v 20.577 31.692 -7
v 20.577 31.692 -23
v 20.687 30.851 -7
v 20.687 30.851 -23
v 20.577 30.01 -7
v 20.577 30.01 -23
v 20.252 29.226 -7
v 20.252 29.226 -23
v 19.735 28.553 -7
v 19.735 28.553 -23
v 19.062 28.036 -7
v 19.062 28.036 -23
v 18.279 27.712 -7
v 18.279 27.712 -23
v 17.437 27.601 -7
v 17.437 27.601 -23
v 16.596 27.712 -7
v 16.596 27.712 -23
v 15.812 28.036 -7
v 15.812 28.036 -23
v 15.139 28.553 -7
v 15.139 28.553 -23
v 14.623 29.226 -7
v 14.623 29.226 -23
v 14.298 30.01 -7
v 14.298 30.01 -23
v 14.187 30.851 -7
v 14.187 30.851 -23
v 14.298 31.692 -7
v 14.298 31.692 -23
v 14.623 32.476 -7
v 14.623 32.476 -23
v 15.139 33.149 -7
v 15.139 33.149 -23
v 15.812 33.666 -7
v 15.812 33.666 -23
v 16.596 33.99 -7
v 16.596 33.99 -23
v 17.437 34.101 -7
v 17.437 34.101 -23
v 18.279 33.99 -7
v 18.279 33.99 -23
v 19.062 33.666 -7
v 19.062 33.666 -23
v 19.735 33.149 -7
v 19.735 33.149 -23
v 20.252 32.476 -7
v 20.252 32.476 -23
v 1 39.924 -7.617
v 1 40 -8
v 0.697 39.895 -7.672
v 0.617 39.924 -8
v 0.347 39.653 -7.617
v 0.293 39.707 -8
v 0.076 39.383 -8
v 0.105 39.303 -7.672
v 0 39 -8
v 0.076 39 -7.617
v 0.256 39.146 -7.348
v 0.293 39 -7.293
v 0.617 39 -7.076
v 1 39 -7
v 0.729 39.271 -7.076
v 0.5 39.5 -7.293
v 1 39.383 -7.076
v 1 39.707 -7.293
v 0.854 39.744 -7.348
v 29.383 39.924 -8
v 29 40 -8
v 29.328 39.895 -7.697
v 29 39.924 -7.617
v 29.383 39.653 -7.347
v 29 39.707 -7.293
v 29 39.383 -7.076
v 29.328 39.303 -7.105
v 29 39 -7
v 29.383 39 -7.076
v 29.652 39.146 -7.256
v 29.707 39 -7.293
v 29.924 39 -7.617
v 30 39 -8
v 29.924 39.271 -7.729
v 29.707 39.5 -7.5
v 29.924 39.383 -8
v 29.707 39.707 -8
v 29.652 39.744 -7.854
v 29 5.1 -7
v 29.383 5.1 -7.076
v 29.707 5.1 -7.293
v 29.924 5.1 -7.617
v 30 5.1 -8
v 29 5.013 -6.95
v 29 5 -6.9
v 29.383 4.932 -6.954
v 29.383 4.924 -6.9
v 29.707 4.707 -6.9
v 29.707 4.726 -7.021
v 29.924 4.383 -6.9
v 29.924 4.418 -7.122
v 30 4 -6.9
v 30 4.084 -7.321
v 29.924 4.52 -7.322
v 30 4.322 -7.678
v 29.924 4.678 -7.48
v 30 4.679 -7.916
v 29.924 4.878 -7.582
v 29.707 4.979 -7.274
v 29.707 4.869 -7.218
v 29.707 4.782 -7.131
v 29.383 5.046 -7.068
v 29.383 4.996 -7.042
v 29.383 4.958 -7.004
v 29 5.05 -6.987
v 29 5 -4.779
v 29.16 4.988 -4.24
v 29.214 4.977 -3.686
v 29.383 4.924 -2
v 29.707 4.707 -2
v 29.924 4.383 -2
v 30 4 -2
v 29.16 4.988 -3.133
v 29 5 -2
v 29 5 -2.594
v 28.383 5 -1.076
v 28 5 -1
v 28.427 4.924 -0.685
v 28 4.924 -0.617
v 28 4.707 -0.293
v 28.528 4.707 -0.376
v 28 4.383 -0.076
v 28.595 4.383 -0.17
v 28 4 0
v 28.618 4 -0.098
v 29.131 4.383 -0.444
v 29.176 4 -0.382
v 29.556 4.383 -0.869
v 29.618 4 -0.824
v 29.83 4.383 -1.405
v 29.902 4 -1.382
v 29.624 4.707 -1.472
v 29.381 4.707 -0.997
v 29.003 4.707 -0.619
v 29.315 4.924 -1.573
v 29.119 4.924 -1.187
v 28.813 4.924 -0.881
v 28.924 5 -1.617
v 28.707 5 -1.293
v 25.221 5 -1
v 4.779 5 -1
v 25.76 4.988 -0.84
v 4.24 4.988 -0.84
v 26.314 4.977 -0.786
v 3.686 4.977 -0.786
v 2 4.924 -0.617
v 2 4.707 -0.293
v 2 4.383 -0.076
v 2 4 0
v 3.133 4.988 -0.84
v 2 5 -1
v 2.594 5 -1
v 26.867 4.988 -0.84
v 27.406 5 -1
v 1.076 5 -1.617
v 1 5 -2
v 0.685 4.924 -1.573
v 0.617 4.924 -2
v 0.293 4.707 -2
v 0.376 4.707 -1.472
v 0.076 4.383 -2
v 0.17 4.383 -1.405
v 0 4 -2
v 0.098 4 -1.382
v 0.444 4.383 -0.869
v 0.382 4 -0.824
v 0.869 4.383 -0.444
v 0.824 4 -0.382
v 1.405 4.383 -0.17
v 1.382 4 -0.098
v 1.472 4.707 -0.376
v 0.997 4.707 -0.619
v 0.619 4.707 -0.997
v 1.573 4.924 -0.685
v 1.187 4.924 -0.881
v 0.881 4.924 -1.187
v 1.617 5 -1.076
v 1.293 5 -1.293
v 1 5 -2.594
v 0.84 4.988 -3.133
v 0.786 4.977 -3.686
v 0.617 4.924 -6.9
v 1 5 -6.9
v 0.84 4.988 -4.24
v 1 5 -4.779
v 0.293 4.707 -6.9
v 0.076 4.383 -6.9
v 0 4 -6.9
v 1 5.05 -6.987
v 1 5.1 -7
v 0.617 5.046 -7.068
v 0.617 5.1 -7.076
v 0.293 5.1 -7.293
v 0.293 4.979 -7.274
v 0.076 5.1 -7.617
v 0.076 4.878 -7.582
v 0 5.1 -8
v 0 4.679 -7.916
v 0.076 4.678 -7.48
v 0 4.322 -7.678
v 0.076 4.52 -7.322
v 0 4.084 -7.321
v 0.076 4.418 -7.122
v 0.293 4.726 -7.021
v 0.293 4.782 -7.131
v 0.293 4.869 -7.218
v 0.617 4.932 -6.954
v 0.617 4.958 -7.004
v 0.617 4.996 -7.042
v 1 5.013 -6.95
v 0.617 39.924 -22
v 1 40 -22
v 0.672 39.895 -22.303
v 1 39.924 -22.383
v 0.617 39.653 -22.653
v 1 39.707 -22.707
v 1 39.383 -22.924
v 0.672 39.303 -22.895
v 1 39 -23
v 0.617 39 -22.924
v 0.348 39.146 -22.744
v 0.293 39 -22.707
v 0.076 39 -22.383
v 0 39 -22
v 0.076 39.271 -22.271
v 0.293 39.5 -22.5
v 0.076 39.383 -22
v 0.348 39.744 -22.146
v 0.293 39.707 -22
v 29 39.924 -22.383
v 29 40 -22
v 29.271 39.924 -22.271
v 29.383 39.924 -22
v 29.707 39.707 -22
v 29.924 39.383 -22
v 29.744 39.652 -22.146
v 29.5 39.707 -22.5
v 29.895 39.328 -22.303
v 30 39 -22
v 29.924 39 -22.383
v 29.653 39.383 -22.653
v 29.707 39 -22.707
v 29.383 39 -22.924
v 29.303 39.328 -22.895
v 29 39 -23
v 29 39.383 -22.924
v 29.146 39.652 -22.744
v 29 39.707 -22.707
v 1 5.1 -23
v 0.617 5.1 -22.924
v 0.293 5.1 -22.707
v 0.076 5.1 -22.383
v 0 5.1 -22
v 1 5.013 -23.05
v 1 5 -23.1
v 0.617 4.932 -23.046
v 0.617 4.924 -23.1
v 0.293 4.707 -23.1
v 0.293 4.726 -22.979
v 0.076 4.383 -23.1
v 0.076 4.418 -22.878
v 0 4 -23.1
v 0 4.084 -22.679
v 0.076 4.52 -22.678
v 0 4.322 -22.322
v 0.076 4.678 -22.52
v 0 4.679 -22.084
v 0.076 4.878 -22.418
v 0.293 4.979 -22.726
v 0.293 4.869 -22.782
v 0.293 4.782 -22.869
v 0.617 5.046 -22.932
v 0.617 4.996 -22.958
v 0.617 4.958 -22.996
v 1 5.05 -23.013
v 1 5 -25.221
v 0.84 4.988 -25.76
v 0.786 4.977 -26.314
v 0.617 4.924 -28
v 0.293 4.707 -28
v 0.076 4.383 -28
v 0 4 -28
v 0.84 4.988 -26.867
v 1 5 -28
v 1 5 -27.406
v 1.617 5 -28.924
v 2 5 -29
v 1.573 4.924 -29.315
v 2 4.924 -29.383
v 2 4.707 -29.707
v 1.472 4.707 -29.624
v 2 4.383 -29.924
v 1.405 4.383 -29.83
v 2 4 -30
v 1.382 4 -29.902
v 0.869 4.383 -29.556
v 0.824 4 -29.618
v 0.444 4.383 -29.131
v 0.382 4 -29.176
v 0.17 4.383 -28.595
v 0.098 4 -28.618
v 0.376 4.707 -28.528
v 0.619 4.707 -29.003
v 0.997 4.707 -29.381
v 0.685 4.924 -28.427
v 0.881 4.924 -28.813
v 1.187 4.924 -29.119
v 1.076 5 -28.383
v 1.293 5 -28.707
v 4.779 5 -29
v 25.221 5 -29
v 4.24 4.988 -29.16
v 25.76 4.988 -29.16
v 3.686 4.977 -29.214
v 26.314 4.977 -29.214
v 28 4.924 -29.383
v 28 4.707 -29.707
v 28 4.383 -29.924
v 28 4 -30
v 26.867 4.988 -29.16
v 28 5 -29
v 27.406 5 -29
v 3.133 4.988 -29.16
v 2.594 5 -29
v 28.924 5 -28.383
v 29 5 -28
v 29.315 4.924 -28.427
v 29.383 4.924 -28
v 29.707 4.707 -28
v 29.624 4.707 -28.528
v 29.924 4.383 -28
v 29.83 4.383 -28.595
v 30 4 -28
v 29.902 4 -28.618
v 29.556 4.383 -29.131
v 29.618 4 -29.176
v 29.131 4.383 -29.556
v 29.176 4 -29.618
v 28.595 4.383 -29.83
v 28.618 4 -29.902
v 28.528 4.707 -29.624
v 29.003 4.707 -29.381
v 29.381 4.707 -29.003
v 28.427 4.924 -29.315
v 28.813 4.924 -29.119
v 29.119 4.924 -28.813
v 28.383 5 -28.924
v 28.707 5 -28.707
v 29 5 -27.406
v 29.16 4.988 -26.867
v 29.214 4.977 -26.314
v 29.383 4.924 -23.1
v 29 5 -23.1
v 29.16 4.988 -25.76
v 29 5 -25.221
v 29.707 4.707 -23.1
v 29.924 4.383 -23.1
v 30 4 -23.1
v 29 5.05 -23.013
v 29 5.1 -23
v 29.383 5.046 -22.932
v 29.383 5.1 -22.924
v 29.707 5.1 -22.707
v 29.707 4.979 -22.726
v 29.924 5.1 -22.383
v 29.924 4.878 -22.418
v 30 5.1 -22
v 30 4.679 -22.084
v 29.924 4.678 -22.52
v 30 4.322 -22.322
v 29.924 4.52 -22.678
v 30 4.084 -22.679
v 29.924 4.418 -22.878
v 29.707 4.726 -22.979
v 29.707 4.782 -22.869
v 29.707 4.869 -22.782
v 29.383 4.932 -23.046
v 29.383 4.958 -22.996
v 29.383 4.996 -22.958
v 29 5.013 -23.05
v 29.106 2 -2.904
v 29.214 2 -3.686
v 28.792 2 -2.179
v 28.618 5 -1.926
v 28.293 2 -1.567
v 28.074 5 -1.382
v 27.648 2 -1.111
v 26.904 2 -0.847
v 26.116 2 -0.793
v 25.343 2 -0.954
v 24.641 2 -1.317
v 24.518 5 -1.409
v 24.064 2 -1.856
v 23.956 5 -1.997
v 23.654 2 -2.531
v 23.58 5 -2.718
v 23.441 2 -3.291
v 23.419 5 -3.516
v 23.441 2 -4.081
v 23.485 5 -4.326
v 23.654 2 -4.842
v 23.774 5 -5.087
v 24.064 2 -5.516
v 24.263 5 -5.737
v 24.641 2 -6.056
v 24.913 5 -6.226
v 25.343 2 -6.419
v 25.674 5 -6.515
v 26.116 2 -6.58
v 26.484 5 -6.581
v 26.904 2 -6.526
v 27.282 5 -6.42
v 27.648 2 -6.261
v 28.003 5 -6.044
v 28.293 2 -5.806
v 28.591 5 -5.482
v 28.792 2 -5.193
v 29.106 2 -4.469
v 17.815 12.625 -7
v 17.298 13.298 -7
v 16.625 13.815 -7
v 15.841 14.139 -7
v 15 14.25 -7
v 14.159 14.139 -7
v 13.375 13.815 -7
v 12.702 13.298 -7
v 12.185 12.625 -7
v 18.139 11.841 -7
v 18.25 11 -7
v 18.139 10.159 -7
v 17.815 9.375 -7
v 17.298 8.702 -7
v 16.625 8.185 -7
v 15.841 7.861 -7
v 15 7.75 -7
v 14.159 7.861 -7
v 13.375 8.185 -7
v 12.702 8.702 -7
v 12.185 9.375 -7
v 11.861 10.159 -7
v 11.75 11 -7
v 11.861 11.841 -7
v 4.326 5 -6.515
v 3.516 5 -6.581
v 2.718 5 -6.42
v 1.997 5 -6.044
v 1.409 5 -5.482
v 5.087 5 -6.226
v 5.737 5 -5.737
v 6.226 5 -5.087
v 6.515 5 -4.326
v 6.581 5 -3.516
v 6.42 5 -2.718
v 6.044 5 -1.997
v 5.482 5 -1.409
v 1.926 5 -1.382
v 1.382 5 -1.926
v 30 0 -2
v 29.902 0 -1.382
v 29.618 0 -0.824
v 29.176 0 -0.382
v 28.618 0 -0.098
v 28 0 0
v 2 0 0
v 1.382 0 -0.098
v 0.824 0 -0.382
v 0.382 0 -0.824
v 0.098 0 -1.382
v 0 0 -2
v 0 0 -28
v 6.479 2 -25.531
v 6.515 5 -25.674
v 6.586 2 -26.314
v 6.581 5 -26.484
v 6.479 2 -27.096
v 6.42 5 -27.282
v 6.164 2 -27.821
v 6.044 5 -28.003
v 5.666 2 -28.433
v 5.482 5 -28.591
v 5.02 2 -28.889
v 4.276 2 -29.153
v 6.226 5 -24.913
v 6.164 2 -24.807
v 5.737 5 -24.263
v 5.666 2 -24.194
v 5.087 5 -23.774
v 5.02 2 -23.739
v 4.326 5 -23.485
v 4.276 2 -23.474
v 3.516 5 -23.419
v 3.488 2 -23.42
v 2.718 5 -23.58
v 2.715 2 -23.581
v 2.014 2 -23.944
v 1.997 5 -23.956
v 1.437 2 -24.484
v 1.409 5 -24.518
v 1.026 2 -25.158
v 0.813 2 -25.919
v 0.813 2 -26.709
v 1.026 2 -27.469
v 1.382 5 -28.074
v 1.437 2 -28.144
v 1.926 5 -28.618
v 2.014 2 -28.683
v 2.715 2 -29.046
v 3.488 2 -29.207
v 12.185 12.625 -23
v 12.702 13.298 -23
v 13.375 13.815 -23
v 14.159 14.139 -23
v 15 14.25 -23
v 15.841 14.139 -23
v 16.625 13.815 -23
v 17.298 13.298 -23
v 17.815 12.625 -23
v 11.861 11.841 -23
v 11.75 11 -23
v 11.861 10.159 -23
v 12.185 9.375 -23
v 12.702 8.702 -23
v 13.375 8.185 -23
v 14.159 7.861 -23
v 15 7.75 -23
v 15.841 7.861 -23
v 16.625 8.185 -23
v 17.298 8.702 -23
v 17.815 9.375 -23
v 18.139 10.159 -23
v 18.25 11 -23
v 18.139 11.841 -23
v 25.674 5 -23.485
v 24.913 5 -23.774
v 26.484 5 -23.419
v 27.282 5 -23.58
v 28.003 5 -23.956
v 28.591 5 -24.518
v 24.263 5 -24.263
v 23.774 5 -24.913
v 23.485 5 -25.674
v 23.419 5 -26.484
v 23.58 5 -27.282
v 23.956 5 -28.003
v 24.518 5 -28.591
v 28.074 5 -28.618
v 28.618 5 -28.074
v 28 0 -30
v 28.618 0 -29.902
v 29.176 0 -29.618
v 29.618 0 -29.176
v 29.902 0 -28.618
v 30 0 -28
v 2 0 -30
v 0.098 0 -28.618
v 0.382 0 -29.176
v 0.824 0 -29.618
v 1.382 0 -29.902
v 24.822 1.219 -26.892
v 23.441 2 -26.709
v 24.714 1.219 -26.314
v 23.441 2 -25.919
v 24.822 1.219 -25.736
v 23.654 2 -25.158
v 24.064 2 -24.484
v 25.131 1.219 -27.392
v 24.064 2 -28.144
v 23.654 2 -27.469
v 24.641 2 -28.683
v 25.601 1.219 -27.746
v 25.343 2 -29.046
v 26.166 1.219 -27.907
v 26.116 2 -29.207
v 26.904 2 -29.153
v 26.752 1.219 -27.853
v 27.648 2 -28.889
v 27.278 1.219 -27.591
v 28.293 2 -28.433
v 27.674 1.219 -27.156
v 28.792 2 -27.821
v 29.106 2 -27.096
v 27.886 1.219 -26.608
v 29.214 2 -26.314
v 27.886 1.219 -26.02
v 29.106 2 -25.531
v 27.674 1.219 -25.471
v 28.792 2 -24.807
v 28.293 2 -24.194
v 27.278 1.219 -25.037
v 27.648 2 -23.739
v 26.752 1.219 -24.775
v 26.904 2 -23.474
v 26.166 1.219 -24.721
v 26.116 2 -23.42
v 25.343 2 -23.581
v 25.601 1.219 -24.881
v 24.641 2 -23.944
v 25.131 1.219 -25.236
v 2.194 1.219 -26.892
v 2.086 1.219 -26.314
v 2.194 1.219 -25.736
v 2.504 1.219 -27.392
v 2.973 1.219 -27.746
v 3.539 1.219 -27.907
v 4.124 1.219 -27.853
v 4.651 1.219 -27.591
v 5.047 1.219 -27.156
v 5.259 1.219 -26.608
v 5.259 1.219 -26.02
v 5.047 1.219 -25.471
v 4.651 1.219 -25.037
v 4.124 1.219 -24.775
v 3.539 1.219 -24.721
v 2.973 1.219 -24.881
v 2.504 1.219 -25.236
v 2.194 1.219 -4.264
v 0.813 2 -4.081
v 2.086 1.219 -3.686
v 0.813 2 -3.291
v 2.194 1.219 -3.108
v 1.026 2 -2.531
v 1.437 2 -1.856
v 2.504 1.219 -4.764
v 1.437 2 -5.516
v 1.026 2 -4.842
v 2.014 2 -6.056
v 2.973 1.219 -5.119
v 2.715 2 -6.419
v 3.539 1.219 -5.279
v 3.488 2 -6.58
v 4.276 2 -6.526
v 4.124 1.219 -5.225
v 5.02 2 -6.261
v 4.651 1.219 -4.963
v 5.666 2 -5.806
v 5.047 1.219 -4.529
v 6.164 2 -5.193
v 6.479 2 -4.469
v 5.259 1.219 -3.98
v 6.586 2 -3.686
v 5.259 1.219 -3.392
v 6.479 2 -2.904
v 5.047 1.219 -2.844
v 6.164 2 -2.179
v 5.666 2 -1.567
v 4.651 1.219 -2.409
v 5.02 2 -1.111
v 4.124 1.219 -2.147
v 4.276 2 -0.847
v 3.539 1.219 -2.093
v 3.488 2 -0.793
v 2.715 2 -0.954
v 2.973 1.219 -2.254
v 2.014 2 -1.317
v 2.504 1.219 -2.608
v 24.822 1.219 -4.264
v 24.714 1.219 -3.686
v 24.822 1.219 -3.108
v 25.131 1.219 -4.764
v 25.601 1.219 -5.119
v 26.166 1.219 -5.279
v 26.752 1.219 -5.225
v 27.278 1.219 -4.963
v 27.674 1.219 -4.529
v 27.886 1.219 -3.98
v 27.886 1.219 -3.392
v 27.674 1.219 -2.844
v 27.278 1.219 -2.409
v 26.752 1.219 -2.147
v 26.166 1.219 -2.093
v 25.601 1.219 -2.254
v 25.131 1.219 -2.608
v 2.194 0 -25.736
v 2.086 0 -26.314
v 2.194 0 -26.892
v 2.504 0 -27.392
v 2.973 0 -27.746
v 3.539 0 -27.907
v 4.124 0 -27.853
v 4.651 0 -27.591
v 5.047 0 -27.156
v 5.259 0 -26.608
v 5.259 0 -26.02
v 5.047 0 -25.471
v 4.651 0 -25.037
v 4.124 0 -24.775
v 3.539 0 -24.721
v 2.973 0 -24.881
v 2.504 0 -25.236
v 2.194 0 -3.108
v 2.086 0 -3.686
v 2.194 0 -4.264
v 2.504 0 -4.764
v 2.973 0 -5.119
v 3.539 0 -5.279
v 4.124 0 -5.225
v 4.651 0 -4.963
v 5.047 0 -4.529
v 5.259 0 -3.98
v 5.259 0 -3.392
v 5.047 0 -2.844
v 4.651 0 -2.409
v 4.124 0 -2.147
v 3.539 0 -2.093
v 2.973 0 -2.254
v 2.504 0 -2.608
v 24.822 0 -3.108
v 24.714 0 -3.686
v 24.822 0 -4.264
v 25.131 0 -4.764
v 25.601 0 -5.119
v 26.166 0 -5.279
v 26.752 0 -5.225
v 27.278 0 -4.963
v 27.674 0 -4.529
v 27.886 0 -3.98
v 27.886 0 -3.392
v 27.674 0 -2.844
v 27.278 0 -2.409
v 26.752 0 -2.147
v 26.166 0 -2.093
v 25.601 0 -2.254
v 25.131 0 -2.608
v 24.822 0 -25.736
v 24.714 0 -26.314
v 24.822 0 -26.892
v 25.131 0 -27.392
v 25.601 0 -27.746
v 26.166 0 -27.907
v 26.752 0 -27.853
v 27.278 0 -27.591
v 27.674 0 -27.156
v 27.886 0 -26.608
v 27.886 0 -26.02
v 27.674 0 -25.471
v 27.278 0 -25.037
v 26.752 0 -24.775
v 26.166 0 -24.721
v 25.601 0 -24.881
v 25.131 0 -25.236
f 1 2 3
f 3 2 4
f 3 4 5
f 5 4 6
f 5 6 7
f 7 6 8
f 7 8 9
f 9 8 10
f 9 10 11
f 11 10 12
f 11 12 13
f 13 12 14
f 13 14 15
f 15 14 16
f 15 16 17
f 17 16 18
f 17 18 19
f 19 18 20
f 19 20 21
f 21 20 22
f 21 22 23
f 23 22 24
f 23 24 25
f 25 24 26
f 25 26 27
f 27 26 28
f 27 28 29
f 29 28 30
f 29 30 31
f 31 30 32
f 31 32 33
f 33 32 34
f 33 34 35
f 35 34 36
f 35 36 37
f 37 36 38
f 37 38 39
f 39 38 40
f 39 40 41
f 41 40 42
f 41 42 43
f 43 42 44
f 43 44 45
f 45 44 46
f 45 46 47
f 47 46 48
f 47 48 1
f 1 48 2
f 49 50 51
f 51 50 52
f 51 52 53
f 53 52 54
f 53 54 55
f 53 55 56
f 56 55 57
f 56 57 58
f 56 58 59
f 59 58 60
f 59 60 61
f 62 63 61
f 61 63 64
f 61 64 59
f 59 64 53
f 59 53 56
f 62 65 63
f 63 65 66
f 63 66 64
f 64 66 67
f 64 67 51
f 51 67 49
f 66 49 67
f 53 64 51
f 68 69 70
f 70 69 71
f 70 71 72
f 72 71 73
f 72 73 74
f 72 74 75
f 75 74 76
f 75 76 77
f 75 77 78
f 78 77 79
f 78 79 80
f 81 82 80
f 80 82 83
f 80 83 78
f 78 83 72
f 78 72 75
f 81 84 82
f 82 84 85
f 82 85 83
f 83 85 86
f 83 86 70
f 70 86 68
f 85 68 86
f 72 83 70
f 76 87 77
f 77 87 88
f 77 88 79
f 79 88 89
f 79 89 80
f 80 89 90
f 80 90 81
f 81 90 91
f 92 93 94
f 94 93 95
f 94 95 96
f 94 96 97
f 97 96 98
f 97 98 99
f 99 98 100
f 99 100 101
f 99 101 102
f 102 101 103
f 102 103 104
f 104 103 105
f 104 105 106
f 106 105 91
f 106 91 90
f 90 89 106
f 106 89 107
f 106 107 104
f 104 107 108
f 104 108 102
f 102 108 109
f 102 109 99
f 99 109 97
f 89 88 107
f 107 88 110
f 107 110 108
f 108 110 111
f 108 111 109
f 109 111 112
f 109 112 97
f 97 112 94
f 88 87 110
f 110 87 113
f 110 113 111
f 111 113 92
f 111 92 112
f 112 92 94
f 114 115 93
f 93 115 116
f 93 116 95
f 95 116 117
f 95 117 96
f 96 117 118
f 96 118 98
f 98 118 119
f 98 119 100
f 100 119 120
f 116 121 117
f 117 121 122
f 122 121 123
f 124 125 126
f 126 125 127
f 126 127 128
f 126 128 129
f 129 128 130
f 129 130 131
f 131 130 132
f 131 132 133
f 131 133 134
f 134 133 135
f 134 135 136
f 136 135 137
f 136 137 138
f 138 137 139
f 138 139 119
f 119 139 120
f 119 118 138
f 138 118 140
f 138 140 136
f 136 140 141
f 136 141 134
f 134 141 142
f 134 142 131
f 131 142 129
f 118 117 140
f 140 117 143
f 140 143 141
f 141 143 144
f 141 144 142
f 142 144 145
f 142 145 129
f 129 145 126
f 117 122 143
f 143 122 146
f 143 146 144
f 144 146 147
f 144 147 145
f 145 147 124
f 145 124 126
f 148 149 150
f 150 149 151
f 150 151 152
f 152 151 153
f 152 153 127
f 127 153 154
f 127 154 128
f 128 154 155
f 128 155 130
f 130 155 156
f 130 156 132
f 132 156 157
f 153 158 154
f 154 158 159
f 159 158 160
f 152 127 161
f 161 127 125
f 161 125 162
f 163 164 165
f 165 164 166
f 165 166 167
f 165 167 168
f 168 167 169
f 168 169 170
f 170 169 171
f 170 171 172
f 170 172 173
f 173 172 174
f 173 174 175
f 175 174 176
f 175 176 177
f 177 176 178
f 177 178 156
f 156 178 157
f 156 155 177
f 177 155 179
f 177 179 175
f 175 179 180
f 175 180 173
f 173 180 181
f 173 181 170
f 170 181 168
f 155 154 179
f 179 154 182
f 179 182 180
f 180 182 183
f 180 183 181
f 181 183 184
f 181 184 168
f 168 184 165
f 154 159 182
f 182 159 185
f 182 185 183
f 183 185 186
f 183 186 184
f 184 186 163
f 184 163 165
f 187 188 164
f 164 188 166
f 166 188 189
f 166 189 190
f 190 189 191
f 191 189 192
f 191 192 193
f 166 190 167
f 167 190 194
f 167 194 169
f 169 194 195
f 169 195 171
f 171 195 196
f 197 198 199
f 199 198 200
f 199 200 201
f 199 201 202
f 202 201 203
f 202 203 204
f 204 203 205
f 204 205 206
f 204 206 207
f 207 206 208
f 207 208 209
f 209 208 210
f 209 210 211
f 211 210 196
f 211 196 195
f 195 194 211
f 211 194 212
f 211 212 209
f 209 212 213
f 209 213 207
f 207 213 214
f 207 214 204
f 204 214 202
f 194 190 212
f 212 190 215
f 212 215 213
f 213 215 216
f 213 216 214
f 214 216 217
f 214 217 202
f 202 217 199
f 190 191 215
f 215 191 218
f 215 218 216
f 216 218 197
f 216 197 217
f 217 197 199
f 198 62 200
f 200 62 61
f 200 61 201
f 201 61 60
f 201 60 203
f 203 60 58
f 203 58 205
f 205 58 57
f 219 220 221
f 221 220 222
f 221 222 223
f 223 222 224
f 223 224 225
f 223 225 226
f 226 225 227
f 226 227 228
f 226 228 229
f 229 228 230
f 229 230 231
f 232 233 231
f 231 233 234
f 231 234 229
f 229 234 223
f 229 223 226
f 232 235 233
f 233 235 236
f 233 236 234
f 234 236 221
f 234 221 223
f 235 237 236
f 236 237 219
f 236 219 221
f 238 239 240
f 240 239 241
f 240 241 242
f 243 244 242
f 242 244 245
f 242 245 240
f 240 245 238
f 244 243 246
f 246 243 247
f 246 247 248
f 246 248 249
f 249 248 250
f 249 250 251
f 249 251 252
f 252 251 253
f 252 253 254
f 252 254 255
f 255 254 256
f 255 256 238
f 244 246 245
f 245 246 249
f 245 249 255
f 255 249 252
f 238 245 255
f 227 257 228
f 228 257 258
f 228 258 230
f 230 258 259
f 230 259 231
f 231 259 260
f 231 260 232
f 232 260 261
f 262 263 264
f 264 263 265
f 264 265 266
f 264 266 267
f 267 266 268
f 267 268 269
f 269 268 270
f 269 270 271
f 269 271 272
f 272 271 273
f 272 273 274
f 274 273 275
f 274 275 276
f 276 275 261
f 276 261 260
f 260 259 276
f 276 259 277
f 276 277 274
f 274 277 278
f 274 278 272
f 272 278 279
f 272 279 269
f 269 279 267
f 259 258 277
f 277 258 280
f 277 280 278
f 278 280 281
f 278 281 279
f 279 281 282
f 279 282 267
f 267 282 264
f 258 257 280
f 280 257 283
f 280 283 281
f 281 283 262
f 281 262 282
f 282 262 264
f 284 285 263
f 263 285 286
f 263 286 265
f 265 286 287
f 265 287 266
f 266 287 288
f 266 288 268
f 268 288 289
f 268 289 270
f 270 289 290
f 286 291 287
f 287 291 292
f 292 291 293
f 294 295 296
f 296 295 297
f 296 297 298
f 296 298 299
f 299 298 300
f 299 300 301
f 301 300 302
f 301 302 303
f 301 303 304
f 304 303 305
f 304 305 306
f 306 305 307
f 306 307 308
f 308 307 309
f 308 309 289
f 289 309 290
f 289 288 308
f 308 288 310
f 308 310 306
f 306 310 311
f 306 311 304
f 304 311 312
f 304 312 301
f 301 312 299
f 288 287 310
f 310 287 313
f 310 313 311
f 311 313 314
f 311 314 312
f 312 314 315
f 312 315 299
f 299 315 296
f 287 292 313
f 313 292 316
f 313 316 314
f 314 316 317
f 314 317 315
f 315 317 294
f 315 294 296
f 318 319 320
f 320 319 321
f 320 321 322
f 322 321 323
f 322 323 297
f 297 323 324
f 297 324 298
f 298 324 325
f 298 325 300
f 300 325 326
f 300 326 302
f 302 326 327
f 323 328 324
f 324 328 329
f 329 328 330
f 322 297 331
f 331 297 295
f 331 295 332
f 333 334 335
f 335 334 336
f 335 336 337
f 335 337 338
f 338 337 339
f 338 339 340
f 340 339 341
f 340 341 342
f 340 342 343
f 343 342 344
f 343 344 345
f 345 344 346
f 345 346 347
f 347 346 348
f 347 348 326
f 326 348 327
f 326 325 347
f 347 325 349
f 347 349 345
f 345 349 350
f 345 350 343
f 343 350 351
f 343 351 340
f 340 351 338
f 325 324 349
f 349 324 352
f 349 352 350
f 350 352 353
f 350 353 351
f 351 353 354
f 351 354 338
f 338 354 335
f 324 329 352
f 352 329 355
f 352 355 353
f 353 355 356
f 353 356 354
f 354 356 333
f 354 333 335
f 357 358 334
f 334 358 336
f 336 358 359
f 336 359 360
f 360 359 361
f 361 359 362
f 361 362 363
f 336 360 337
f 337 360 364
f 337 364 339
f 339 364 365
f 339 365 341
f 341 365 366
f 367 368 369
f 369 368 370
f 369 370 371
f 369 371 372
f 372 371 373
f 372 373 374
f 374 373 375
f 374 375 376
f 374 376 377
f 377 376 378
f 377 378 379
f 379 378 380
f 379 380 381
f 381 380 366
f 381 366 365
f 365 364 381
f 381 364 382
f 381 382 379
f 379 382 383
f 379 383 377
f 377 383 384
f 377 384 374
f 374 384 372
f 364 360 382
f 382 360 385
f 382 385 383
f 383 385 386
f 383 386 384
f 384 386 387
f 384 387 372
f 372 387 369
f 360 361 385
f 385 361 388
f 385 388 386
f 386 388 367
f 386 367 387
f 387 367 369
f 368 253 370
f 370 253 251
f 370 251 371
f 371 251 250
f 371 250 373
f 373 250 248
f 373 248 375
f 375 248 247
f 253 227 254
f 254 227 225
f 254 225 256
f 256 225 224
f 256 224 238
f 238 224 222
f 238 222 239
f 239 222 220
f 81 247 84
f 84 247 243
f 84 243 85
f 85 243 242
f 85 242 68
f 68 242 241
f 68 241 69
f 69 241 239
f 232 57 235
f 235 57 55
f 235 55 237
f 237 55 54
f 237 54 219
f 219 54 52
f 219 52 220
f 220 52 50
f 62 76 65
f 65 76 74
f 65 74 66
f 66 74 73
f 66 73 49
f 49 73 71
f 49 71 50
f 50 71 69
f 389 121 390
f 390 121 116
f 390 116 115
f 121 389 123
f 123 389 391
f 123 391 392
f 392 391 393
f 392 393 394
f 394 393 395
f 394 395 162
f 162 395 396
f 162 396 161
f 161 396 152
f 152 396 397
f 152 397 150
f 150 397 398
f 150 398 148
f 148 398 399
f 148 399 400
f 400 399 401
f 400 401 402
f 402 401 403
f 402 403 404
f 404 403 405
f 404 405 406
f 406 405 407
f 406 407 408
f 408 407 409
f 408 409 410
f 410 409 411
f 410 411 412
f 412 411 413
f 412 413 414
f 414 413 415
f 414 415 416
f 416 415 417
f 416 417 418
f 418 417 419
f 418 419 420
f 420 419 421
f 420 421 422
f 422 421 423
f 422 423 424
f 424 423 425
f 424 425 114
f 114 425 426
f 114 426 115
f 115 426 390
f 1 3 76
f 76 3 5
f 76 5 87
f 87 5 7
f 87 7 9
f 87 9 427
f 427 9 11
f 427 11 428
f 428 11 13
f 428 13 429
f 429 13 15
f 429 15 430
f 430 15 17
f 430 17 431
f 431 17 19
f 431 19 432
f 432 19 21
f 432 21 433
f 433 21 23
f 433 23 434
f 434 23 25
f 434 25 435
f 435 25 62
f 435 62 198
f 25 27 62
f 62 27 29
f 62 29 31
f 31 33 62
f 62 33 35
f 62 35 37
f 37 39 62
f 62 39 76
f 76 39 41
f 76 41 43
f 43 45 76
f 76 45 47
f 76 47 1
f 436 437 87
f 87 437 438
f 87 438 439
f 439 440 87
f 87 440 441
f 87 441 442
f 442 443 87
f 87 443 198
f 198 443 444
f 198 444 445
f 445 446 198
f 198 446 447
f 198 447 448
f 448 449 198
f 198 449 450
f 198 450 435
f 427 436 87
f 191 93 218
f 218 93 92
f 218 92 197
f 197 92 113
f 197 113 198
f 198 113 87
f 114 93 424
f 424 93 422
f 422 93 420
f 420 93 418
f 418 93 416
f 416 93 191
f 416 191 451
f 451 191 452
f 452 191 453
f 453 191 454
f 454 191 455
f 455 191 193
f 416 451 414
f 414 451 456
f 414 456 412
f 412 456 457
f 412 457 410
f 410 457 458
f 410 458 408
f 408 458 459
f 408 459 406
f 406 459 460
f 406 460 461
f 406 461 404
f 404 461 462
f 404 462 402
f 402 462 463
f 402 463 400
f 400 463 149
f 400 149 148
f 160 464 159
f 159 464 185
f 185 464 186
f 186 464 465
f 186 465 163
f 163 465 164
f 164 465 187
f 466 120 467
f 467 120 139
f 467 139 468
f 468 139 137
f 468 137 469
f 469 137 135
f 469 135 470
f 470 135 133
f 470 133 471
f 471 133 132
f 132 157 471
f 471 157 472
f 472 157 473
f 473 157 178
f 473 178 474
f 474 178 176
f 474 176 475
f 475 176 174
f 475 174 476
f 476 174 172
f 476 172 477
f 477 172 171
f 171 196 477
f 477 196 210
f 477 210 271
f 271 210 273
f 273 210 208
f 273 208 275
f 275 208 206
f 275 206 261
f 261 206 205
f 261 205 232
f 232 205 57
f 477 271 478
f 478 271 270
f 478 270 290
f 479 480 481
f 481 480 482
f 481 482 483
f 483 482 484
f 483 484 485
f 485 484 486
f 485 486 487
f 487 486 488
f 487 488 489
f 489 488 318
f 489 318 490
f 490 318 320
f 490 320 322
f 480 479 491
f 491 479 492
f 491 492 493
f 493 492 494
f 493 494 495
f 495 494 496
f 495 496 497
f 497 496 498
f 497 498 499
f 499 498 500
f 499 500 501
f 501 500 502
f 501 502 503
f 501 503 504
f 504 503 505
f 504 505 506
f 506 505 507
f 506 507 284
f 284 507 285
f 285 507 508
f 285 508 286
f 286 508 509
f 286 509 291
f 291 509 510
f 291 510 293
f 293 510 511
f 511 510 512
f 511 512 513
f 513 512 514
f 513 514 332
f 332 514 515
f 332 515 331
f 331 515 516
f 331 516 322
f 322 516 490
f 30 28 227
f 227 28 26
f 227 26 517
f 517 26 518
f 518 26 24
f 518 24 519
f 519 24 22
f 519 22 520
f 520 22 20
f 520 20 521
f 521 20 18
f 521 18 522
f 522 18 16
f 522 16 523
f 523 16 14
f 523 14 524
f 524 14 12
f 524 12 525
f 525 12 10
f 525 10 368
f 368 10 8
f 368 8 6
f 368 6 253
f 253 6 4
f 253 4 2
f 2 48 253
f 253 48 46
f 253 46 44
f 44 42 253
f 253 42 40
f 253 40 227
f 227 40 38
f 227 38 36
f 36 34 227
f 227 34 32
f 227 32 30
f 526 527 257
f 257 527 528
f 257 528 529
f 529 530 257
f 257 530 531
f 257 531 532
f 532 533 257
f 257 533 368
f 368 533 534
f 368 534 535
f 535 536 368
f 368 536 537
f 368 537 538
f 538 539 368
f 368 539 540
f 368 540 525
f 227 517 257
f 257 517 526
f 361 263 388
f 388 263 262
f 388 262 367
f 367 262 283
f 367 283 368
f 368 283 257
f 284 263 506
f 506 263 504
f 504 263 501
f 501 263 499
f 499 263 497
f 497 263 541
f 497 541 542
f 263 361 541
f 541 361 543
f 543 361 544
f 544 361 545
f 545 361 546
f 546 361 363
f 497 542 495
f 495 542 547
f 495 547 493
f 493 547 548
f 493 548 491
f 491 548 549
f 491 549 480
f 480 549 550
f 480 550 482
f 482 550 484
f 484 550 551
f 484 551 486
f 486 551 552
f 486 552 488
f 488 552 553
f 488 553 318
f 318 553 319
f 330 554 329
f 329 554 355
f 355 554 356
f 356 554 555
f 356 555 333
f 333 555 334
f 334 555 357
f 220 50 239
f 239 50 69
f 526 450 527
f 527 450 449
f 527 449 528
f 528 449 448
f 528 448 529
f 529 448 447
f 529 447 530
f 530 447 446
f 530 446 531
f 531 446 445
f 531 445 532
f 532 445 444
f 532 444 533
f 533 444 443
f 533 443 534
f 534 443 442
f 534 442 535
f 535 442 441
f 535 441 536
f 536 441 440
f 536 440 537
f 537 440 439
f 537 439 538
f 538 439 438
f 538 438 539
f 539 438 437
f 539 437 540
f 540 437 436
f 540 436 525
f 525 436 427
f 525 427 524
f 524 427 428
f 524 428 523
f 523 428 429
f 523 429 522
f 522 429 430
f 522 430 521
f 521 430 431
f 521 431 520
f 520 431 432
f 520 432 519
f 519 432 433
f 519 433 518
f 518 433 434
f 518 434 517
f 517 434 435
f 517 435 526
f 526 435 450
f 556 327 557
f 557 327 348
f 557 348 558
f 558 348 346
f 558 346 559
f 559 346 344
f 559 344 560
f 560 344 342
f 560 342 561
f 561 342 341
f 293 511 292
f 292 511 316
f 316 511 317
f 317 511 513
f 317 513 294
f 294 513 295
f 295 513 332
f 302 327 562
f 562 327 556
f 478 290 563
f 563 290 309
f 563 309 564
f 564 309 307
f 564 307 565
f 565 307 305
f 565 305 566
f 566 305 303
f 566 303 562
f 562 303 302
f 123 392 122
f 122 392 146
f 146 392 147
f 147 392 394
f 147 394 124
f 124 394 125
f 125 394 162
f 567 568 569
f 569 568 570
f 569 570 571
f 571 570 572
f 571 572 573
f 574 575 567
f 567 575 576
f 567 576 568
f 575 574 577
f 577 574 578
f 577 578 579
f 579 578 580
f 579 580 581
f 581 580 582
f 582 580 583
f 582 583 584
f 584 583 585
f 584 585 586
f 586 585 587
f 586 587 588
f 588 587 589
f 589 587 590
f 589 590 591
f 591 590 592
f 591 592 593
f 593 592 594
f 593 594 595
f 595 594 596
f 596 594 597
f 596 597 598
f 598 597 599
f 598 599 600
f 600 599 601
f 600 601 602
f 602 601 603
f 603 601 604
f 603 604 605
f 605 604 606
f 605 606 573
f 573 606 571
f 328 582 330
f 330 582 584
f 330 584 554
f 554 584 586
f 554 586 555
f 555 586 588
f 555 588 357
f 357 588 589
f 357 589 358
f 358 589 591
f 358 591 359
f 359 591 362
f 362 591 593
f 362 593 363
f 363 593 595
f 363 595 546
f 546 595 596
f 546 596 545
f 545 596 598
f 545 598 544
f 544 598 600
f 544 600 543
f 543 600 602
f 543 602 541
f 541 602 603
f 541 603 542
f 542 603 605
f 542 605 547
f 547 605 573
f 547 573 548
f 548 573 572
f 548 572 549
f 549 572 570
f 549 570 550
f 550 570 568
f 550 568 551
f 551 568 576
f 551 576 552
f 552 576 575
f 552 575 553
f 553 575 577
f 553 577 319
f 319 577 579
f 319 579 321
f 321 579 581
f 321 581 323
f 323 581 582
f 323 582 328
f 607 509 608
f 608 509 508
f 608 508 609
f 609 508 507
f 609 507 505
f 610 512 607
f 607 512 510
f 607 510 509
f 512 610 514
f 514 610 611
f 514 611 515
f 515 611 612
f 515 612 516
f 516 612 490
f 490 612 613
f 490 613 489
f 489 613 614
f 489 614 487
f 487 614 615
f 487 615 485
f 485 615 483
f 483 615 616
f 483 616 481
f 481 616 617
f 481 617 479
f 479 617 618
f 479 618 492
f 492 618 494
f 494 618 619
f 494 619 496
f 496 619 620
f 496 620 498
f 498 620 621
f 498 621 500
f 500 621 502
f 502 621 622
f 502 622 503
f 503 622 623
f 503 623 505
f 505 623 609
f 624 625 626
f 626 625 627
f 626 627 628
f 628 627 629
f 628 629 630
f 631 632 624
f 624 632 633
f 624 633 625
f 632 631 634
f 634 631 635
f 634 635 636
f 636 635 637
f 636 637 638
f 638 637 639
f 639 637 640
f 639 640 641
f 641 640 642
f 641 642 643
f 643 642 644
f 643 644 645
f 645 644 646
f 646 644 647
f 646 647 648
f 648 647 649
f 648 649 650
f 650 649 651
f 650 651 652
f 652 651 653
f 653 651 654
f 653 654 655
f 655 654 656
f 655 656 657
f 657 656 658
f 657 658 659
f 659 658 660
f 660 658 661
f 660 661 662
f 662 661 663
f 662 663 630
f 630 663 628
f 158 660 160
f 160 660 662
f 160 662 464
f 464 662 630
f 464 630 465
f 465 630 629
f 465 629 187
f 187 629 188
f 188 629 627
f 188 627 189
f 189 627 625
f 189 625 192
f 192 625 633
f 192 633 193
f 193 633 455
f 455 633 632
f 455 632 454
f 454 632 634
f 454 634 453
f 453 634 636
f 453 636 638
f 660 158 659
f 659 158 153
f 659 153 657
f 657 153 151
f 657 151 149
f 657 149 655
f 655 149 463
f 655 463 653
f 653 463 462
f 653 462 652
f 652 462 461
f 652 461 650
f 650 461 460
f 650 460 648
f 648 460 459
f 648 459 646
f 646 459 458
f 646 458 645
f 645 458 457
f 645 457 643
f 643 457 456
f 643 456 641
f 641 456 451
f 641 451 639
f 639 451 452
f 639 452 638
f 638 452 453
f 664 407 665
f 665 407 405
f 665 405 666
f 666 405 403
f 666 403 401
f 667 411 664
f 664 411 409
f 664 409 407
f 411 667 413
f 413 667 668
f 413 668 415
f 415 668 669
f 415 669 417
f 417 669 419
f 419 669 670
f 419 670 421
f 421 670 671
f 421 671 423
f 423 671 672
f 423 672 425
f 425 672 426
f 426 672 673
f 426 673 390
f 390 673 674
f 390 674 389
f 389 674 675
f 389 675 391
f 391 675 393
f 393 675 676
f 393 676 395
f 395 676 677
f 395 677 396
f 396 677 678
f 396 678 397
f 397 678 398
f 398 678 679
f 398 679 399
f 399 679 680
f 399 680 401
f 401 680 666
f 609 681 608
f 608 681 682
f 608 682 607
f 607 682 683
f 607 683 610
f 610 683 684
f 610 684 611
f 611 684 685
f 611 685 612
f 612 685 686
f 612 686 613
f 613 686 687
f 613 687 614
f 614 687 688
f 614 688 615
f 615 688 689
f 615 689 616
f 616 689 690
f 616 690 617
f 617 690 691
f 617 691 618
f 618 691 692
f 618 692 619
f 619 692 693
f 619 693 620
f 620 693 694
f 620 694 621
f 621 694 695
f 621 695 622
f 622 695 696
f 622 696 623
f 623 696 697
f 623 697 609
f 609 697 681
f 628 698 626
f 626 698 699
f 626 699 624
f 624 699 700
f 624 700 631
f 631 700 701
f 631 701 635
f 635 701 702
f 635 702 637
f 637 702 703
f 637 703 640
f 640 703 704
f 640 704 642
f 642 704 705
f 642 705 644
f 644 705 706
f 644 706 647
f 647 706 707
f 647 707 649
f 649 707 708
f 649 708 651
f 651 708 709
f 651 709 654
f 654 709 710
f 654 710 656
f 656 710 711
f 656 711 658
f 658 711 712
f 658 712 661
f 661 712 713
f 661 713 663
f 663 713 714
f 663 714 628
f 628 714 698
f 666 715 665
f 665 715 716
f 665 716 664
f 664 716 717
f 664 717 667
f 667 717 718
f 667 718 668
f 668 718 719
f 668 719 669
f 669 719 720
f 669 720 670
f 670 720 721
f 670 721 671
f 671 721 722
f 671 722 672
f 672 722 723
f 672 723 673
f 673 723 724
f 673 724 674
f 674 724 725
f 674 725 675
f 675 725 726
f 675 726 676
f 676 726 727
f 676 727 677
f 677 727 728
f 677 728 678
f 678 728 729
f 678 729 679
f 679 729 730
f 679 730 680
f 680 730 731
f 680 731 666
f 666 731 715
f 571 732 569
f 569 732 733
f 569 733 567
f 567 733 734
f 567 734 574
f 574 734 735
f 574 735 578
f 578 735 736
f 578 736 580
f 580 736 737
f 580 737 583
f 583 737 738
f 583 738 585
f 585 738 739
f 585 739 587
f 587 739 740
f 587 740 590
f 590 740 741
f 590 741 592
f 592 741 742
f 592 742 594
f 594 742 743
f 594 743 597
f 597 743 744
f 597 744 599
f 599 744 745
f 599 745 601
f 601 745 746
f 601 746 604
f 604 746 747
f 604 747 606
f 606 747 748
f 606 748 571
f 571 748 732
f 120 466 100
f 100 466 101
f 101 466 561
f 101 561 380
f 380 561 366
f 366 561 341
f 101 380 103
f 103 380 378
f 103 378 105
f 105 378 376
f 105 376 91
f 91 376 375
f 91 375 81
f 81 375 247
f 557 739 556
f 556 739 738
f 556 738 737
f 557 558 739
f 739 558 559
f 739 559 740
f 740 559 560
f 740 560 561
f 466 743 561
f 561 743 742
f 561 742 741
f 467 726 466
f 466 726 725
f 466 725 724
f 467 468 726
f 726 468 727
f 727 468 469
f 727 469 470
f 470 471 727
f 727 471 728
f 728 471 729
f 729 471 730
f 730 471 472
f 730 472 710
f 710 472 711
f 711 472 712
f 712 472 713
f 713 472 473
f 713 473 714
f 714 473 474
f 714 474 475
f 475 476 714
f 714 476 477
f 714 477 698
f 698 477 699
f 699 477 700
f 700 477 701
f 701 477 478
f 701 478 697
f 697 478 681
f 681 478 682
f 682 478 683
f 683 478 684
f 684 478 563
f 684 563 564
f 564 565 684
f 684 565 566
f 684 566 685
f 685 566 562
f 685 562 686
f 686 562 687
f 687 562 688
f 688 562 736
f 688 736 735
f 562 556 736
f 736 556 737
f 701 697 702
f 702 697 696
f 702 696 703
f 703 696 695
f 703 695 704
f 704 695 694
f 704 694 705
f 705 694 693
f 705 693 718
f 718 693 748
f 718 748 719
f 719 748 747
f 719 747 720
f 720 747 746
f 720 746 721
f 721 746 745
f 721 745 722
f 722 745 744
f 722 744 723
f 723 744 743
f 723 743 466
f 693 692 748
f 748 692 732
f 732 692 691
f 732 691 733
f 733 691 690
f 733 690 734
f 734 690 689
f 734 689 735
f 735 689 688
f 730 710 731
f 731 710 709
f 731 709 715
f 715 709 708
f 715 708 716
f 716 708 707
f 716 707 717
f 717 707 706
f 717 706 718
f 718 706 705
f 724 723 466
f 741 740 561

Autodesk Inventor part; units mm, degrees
ref_plane "YZ Plane" through (0, 0, 0) normal (1, 0, 0) x (0, 1, 0)
ref_plane "XZ Plane" through (0, 0, 0) normal (0, 1, 0) x (-1, 0, 0)
ref_plane "XY Plane" through (0, 0, 0) normal (0, 0, 1) x (1, 0, 0)
sketch "スケッチ1" plane through (0, 0, 0) normal (0, 1, 0) x (-1, 0, 0)
  line L0 (0, 0) -> (-30, 0)
  line L1 (-30, 0) -> (-30, -30)
  line L2 (-30, -30) -> (0, -30)
  line L3 (0, -30) -> (0, 0)
  dimension "d0" = 30
  dimension "d1" = 30
extrude "押し出し1" add sketch "スケッチ1" along normal blind 5
sketch "スケッチ2" plane through (0, 5, 0) normal (0, 1, 0) x (1, 0, 0)
  line L0 (30, 0) -> (30, 30) projected
  line L1 (30, 30) -> (0, 30) projected
  line L2 (0, 30) -> (30, 0) construction
  line L3 (30, 30) -> (0, 0) construction
  circle A0 centre (15, 15) radius 16 construction
  point P0 (26.3137, 26.3137)
  point P1 (26.3137, 3.6863)
  point P2 (3.6863, 3.6863)
  point P3 (3.6863, 26.3137)
  point P4 (15, 15)
  dimension "d12" = 32
  dimension "d76" = 0
hole "穴2" at (26.3137, 5, -26.3137) at (26.3137, 5, -3.6863) at (3.6863, 5, -3.6863) at (3.6863, 5, -26.3137) direction (0, -1, 0) diameter 3.2 end through all
sketch "スケッチ3" plane through (0, 5, 0) normal (0, 1, 0) x (1, 0, 0)
  circle A0 centre (26.3137, 3.6863) radius 1.6 projected
  circle A1 centre (3.6863, 3.6863) radius 1.6 projected
  circle A2 centre (3.6863, 26.3137) radius 1.6 projected
  circle A3 centre (26.3137, 26.3137) radius 1.6 projected
  point P0 (0, 0)
hole "穴3" at (26.3137, 5, -3.6863) at (3.6863, 5, -3.6863) at (3.6863, 5, -26.3137) at (26.3137, 5, -26.3137) direction (0, -1, 0) diameter 5.8 depth 3 tip angle 118
sketch "スケッチ4" plane through (0, 5, 0) normal (0, 1, 0) x (1, 0, 0)
  line L0 (0, 30) -> (0, 0) projected
  line L1 (30, 0) -> (30, 30) projected
  line L2 (0, 7) -> (30, 7)
  line L3 (30, 7) -> (30, 23)
  line L4 (30, 23) -> (0, 23)
  line L5 (0, 23) -> (0, 7)
  line L6 (0, 0) -> (30, 0) projected
  point P0 (0, 23)
  dimension "d27" = 16
  dimension "d28" = 7
extrude "押し出し2" add sketch "スケッチ4" along normal blind 35 contours L4 L1 L2 L0
fillet "フィレット6" radius 2 4 edges at (30, 2.5, 0) (0, 2.5, 0) (0, 2.5, -30) (30, 2.5, -30)
sketch "スケッチ8" plane through (0, 5, -7) normal (0, 0, 1) x (1, 0, 0)
  line L0 (0, 35) -> (30, 35) projected
  line L1 (2, 0) -> (28, 0) projected
  point P0 (0, -5)
  point P1 (15, 6)
  point P2 (15, 35)
  point P3 (3.089, 0)
  point P4 (23.911, 0)
  dimension "d61" = 6
hole "穴6" at (15, 11, -7) direction (0, 0, -1) diameter 6.5 end through all
fillet "フィレット7" [suppressed]
fillet "フィレット8" radius 0.1 2 edges at (15, 5, -23) (15, 5, -7)
fillet "フィレット9" radius 1 22 edges at (15, 40, -23) (15, 40, -7) (30, 5.0293, -23.0293) (30, 5, -25.55) (29.4142, 5, -29.4142) (15, 5, -30) (0.5858, 5, -29.4142) (0, 5, -25.55) (0, 5.0293, -23.0293) (0, 22.55, -23) (30, 22.55, -23) (0, 5.0293, -6.9707) (0, 5, -4.45) (0.5858, 5, -0.5858) (15, 5, 0) (29.4142, 5, -0.5858) (30, 5, -4.45) (30, 5.0293, -6.9707) (30, 22.55, -7) (0, 22.55, -7) (30, 40, -15) (0, 40, -15)
fillet "フィレット10" [suppressed]
sketch "スケッチ10" plane through (29, 5.1, -23) normal (0, 0, -1) x (-1, 0, 0)
  line L0 (0, 34.9) -> (28, 34.9) construction
  circle A0 centre (14, 5.9) radius 3.25 construction
  line L1 (14, 34.9) -> (14, 5.9) construction
  arc A1 (9, 33.9) -> (0, 24.9) centre (9, 24.9) ccw construction
  line L2 (14, 5.9) -> (10.7733, 32.1791) construction
  circle A2 centre (14, 5.9) radius 20 construction
  point P0 (29, -5.1)
  point P1 (9, 34.9)
  point P2 (19, 34.9)
  point P3 (11.5626, 25.7509)
  point P4 (-1, 34.9)
  point P5 (29, 34.9)
  dimension "d85" = 40
  dimension "d84" = 7
hole "穴7" at (17.4374, 30.8509, -23) direction (0, 0, 1) diameter 6.5 end through all
properties part number "NewPart2"
